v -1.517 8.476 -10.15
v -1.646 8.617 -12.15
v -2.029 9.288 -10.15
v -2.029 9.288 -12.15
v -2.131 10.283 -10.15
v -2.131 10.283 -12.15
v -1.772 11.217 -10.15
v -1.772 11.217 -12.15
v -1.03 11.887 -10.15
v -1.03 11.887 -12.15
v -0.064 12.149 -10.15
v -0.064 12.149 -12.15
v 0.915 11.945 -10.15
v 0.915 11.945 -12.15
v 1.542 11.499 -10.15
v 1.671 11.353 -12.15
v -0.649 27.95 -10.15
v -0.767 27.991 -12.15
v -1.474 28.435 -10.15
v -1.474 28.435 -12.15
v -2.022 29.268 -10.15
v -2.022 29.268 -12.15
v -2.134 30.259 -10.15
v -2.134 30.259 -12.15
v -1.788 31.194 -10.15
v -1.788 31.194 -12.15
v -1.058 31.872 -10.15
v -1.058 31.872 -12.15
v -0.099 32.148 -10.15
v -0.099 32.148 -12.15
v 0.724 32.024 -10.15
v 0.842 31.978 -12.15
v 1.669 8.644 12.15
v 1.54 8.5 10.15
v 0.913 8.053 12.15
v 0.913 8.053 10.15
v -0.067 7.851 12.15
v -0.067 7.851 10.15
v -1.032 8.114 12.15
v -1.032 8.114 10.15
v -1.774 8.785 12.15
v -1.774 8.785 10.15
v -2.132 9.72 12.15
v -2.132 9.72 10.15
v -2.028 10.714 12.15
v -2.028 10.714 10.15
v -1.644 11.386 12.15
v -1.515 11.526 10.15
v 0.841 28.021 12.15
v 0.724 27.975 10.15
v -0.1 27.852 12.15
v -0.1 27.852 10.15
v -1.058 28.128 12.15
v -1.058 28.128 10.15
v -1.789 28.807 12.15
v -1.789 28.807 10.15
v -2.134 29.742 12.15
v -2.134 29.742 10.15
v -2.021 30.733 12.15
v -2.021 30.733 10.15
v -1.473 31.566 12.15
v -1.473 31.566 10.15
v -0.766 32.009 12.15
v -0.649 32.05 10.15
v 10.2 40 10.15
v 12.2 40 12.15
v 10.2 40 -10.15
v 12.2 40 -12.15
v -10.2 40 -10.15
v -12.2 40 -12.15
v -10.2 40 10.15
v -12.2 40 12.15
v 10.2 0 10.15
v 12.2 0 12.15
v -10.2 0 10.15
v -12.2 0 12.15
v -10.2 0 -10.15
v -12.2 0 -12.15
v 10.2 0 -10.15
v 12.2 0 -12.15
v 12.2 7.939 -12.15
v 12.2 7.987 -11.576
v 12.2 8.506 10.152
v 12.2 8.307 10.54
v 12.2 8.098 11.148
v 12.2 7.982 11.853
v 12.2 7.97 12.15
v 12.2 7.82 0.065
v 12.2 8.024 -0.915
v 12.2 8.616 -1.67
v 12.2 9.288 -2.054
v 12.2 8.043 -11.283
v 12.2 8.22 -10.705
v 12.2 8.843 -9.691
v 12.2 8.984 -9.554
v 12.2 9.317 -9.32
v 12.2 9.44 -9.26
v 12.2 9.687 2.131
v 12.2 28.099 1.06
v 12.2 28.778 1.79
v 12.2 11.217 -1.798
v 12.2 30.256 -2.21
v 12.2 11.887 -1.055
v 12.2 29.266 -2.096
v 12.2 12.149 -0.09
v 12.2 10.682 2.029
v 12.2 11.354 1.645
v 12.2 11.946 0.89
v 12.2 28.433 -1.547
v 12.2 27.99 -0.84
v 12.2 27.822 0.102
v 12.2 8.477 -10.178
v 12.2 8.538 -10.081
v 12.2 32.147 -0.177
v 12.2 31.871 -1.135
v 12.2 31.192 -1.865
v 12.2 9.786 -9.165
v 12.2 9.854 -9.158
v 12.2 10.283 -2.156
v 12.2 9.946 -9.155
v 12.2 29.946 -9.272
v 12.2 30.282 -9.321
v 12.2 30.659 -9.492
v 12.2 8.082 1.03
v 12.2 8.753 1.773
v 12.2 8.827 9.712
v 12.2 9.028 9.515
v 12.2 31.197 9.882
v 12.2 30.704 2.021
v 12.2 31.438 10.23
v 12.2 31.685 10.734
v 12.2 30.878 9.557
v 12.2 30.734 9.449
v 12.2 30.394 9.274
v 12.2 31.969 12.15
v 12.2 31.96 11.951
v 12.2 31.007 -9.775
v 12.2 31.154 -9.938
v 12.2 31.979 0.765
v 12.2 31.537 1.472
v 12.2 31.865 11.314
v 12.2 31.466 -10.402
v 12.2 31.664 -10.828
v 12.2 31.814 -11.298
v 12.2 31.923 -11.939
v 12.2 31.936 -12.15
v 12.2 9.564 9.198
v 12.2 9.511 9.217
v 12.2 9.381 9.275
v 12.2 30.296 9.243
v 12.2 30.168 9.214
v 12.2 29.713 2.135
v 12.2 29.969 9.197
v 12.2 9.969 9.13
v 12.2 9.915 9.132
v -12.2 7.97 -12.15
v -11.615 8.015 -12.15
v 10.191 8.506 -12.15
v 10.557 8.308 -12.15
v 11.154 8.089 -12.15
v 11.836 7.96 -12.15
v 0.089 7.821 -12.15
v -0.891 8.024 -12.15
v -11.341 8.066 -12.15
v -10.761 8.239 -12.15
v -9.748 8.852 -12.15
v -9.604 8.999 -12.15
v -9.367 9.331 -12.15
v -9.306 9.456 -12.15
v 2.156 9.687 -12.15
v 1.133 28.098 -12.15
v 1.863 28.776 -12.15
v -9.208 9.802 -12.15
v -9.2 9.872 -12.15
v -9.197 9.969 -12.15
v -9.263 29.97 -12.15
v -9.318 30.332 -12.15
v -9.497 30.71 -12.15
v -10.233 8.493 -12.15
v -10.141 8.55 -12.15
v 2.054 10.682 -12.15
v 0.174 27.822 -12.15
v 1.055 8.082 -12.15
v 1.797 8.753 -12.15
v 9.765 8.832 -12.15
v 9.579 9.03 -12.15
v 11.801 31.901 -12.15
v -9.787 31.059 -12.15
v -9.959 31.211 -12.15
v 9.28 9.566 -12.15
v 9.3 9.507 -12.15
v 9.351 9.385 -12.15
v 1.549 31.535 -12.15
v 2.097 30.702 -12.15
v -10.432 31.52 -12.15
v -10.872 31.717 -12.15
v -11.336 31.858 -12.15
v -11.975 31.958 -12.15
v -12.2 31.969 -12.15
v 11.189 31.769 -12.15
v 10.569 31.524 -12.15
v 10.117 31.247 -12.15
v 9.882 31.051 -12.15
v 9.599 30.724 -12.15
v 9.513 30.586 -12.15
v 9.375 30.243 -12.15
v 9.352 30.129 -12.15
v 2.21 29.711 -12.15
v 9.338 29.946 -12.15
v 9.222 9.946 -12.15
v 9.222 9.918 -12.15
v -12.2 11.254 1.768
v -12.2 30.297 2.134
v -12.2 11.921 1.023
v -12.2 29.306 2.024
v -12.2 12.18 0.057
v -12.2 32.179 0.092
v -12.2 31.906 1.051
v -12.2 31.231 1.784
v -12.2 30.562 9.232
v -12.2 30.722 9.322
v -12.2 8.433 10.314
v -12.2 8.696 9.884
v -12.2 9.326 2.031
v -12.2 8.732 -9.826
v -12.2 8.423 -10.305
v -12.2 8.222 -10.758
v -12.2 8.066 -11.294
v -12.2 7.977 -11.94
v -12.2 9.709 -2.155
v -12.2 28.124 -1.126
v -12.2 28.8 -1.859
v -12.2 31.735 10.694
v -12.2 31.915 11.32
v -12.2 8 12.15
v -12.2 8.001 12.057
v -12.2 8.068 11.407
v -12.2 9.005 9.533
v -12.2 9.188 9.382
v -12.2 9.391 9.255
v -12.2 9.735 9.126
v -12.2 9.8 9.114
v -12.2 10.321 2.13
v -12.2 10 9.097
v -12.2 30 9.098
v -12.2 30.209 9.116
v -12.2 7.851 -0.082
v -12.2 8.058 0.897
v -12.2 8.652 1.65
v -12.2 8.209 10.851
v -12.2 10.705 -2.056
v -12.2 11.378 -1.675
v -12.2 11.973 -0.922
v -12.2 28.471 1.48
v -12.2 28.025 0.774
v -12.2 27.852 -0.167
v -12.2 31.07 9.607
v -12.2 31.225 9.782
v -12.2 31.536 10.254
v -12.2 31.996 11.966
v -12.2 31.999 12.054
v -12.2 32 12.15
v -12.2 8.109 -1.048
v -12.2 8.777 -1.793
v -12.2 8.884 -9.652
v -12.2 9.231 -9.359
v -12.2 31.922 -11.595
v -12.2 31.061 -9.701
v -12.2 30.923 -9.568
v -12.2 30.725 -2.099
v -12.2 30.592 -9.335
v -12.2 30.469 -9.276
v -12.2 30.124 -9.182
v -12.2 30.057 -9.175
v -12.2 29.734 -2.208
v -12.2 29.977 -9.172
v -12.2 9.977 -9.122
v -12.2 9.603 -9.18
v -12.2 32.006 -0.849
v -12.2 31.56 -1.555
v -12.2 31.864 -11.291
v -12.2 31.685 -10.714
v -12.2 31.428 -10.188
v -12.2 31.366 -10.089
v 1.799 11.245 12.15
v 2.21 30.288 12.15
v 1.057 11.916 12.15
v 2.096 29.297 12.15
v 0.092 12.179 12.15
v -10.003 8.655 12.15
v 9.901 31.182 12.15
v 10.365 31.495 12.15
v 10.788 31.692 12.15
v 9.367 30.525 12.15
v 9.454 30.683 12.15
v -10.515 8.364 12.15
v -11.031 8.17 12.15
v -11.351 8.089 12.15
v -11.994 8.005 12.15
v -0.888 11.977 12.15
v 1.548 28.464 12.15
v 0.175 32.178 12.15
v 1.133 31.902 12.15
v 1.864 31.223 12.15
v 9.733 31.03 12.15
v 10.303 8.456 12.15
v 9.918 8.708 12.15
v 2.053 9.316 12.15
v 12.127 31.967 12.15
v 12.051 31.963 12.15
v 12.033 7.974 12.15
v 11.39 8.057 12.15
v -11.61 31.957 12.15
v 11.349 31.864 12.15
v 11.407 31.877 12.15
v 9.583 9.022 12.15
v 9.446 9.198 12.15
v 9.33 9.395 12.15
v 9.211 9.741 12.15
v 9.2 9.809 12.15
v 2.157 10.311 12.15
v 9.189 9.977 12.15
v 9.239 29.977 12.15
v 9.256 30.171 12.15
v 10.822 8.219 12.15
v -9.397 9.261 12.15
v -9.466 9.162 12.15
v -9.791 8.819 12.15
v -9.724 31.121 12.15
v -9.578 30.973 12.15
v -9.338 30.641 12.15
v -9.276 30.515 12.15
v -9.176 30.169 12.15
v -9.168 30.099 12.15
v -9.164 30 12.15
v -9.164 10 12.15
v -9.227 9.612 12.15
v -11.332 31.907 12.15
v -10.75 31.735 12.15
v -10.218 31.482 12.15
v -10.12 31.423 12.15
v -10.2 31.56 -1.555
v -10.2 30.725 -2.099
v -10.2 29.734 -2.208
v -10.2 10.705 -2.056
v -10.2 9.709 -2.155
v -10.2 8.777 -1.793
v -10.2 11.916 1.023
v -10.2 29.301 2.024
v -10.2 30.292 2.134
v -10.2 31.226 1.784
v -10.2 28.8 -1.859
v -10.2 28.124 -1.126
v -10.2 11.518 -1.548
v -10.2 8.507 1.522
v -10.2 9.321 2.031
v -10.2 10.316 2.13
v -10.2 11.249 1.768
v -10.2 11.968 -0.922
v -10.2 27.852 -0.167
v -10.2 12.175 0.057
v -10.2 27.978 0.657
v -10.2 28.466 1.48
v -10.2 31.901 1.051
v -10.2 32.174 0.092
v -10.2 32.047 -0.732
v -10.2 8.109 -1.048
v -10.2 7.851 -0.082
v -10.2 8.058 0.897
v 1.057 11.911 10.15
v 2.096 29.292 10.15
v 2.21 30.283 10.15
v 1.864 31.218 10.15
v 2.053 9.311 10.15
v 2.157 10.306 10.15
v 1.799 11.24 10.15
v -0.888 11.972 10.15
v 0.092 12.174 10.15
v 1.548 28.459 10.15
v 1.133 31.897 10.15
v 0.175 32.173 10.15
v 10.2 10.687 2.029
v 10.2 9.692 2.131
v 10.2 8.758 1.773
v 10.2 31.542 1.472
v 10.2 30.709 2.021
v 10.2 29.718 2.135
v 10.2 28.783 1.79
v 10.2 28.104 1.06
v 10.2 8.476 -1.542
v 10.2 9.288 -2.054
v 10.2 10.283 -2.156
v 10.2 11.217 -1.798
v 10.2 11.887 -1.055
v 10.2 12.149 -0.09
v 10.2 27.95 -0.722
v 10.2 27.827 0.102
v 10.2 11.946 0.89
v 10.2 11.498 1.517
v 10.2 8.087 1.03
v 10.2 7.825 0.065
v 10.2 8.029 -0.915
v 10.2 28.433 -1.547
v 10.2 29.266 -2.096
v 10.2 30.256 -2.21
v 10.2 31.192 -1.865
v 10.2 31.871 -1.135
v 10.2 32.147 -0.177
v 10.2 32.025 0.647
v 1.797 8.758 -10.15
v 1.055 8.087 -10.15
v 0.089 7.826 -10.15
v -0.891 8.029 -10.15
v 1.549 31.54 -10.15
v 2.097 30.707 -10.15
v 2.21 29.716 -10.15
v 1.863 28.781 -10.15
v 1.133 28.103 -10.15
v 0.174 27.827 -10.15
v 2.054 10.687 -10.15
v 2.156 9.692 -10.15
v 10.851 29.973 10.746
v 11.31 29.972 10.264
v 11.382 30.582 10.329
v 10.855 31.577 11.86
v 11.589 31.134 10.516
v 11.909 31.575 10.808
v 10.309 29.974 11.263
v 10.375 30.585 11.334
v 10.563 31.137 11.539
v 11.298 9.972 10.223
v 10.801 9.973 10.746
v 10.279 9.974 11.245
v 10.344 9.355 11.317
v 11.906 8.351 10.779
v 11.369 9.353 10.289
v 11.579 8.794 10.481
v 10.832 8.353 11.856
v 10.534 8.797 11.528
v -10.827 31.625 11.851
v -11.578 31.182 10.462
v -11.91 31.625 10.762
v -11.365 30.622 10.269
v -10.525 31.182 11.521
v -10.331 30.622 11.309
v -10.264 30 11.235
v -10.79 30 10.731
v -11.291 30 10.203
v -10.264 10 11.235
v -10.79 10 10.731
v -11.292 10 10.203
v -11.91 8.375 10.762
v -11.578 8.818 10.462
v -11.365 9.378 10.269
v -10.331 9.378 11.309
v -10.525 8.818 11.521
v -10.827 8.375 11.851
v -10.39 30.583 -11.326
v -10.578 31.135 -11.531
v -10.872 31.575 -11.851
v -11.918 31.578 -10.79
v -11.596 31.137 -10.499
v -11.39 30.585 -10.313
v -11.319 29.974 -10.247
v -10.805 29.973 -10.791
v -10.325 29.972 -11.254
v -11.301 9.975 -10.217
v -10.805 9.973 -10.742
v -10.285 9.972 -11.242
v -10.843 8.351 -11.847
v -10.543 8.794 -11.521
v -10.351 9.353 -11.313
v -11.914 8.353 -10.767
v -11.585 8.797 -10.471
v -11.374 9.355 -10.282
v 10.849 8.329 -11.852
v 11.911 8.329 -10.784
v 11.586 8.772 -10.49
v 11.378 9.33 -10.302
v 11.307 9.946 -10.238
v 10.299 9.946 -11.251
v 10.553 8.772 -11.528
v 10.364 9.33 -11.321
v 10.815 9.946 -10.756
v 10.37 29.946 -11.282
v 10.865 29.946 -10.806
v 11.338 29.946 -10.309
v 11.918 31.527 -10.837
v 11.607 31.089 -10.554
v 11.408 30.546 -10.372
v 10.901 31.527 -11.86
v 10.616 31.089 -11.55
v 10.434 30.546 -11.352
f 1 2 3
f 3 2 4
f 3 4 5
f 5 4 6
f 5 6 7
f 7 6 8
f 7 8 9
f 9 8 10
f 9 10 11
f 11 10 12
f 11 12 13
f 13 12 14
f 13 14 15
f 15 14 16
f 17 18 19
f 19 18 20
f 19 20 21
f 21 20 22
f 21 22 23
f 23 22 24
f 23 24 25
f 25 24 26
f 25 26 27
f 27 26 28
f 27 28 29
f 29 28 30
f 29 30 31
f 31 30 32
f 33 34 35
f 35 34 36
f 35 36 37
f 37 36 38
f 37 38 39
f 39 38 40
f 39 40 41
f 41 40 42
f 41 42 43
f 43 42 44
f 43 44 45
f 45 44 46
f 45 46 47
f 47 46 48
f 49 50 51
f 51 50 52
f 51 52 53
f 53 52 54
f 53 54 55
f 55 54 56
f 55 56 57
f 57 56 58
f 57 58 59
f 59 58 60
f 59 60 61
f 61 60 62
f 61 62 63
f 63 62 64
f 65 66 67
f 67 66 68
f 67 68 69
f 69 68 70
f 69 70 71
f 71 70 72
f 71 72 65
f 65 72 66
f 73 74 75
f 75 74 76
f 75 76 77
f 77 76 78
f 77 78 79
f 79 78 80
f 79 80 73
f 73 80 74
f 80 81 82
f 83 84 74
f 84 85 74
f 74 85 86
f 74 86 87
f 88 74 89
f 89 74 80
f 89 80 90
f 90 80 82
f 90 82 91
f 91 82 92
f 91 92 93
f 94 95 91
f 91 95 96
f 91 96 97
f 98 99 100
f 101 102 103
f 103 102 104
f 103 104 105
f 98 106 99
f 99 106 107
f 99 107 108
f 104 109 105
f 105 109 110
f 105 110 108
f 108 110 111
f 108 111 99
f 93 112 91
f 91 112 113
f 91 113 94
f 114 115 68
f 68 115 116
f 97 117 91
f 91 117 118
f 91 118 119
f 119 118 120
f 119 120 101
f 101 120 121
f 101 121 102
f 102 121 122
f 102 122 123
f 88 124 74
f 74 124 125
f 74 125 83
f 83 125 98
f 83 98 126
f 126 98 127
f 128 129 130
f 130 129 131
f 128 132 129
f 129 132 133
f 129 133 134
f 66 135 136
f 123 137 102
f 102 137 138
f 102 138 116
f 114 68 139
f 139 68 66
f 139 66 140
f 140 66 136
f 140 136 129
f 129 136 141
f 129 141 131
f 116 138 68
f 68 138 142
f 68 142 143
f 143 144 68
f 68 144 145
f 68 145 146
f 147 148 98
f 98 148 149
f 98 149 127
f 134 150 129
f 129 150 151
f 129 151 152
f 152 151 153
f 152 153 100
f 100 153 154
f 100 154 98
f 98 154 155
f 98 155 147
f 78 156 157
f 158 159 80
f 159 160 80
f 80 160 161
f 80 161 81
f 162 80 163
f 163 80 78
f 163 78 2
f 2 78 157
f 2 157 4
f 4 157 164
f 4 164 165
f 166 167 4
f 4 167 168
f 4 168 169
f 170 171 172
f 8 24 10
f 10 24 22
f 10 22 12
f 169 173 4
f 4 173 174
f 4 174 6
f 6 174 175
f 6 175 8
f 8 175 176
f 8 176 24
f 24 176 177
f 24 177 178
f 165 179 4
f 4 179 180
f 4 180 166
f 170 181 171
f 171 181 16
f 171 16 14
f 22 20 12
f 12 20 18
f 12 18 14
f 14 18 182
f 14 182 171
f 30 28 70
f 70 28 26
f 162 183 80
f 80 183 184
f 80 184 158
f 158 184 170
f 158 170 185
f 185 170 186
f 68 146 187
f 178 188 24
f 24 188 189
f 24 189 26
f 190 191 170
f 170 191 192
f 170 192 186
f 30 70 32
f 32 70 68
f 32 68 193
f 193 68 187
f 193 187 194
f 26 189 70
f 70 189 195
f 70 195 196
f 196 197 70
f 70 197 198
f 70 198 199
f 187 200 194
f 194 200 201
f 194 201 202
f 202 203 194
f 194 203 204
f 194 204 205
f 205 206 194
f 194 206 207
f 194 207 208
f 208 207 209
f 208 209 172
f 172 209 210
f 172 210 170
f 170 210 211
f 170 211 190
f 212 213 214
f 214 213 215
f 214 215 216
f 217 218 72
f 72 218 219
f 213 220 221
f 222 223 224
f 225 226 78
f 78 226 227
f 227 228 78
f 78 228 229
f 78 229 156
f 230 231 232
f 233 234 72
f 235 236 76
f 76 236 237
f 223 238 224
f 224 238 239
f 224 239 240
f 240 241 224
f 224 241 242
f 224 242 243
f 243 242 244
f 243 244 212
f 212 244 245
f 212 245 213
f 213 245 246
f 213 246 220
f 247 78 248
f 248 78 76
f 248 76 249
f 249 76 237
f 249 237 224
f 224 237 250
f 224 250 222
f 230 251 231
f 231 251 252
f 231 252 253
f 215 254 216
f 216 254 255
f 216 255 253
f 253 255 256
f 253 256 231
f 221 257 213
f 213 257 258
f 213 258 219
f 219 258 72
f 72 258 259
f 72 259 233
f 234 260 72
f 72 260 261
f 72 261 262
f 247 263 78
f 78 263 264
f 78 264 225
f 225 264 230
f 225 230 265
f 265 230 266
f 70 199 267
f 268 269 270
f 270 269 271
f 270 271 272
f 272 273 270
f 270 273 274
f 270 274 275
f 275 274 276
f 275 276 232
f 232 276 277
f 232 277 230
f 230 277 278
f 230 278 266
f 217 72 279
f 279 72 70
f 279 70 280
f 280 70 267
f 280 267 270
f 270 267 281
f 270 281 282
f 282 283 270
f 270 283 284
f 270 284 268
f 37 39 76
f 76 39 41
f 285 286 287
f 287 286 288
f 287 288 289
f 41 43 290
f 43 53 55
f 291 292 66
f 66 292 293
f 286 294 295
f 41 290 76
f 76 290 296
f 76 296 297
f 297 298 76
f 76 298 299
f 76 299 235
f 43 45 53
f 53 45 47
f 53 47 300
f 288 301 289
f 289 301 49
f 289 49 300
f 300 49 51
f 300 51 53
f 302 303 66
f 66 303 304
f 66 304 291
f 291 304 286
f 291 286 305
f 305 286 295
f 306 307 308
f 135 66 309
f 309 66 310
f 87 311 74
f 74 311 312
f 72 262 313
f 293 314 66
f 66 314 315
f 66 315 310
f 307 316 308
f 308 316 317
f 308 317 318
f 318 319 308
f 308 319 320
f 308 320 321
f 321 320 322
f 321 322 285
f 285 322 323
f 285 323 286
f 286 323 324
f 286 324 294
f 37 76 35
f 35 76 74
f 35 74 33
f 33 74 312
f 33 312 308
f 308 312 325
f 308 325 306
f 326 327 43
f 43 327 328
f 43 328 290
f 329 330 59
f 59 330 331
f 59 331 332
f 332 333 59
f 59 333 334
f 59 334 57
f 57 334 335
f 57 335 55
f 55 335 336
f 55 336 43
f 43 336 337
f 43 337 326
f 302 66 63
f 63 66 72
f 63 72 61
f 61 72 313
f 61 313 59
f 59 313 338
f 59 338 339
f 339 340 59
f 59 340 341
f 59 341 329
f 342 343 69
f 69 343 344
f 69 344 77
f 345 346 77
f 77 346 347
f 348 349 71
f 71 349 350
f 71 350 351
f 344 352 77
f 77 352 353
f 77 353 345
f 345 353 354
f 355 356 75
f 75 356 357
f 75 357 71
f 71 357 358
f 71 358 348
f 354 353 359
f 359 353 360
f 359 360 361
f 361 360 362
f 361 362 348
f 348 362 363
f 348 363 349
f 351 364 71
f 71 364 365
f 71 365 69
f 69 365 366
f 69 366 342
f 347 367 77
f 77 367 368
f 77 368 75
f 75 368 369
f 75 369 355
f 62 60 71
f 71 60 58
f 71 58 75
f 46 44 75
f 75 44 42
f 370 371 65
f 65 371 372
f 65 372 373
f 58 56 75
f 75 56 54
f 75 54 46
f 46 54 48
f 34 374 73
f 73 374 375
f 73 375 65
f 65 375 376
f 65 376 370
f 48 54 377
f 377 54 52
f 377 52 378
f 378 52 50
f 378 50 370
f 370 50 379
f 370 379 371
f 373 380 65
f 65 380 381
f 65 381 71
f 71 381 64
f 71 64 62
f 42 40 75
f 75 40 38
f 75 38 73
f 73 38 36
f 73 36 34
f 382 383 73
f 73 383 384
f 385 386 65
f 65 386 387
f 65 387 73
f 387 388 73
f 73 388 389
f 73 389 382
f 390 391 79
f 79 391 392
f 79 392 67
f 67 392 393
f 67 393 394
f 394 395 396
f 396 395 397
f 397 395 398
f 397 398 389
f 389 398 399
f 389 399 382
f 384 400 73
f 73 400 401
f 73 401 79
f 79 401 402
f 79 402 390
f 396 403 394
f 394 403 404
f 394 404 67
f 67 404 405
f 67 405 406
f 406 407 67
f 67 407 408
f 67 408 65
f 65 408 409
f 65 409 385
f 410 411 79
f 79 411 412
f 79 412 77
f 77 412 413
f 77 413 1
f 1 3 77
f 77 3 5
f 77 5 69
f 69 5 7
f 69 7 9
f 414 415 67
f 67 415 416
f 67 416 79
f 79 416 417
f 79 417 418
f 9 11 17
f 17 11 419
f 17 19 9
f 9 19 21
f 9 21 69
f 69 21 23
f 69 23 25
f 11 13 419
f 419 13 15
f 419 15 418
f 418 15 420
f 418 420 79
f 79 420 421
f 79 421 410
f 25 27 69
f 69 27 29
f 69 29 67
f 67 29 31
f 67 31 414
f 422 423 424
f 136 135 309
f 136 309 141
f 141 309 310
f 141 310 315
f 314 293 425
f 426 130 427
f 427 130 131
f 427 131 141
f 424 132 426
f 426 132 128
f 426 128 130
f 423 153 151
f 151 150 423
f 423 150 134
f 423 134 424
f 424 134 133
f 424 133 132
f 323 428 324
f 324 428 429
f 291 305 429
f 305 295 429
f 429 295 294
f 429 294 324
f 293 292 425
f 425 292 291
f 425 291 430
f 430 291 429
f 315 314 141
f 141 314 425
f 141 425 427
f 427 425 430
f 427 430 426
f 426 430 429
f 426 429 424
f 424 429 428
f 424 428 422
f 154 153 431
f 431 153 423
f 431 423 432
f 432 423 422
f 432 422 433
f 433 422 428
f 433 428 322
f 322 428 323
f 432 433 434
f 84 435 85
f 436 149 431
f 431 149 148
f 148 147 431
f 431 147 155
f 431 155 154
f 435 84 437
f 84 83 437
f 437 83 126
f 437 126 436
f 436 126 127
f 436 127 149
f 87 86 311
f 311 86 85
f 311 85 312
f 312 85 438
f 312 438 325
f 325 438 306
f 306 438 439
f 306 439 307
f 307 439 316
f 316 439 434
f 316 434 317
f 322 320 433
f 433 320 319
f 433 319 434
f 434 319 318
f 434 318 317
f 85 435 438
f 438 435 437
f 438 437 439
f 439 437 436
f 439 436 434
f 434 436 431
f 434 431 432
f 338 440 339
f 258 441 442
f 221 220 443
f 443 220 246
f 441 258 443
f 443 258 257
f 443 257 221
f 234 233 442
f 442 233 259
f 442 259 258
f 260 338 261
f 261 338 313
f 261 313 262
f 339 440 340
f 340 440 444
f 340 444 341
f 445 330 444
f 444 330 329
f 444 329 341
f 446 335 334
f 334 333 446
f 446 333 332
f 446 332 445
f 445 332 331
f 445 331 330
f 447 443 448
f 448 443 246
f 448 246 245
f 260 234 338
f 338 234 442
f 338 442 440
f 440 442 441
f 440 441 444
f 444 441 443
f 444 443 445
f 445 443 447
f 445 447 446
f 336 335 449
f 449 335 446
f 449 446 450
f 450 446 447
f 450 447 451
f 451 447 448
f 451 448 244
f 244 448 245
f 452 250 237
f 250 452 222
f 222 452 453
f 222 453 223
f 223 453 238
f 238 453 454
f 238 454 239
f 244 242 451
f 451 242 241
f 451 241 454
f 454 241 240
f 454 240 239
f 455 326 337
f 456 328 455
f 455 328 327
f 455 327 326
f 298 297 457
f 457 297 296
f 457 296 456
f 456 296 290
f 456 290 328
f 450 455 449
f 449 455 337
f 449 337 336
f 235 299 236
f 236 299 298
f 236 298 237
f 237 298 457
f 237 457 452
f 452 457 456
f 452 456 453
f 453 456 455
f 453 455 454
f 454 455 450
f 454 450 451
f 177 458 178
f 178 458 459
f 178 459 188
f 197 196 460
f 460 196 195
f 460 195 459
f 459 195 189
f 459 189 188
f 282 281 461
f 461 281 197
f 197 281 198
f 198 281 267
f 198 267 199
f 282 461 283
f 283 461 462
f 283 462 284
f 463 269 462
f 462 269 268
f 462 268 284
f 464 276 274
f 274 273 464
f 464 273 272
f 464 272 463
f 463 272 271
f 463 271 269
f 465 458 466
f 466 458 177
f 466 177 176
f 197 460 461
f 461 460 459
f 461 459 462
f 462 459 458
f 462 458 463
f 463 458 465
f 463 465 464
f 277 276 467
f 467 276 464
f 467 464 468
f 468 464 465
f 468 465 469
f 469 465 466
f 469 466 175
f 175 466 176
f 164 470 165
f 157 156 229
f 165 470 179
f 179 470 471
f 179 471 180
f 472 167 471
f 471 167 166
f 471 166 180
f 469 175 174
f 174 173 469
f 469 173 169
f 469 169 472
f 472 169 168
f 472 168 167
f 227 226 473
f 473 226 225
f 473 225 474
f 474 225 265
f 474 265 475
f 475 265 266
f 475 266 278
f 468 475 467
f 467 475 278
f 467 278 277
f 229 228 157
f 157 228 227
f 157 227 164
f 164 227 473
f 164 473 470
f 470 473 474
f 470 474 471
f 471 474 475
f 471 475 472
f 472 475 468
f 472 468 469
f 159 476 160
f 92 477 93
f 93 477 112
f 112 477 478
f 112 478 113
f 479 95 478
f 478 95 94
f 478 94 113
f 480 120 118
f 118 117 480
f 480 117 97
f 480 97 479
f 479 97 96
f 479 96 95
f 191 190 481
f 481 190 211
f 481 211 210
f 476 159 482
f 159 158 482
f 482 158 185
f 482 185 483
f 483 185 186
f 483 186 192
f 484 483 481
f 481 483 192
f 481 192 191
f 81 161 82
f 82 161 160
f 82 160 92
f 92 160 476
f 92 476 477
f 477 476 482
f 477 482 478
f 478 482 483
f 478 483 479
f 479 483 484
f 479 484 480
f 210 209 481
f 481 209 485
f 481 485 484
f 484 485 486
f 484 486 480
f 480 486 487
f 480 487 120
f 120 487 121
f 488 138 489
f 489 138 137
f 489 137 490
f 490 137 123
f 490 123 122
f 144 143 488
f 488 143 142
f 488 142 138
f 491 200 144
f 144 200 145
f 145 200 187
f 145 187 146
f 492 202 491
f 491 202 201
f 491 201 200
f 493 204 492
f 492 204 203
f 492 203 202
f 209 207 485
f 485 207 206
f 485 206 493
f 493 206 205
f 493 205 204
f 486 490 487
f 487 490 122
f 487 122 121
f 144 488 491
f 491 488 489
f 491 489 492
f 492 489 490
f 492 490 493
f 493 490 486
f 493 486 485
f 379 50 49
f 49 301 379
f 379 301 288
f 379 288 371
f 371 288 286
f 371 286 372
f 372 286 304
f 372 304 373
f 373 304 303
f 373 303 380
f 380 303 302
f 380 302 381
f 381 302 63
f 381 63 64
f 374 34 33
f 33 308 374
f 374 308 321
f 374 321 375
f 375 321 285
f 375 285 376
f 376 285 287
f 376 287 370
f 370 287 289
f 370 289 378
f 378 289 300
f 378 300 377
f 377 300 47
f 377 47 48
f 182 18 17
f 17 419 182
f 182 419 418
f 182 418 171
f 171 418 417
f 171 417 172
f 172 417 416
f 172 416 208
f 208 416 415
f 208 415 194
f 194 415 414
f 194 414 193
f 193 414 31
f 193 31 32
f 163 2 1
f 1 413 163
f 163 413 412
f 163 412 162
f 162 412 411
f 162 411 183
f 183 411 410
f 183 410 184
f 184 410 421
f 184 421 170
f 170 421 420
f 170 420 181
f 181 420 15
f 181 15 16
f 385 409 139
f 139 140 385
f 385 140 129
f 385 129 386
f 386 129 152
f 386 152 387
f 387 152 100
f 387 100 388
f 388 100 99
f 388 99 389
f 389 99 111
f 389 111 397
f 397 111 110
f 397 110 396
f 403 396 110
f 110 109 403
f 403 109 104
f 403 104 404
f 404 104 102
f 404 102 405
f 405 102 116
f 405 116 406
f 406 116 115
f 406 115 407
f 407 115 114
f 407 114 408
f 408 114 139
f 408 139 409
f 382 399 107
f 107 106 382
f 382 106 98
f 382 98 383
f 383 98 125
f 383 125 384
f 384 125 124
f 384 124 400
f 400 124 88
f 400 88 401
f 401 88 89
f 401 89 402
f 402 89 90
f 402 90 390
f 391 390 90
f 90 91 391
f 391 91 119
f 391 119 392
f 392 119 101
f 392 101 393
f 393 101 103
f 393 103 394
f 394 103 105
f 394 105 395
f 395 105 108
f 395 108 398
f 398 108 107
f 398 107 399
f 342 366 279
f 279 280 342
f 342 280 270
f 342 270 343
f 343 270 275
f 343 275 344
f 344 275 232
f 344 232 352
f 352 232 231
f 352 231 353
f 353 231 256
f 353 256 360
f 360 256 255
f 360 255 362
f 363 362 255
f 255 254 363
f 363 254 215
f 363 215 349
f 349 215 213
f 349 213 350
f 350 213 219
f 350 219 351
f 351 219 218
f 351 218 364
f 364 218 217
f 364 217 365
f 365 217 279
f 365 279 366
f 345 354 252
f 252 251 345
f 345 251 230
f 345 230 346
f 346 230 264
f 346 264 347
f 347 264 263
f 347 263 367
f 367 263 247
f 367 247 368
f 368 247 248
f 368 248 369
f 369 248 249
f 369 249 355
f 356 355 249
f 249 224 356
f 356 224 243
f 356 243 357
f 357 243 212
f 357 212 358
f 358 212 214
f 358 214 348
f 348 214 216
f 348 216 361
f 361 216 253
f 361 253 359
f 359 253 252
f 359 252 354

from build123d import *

# Parameters (mm, degrees)
SKETCH1_W           = 24.4
SKETCH1_H           = 24.3
SKETCH1_W_2         = 20.4
SKETCH1_H_2         = 20.3
BOSS_EXTRUDE1_DEPTH = 40
SKETCH3_R           = 2.15
CUT_EXTRUDE1_DEPTH  = 40
CIRPATTERN1_COUNT   = 4


with BuildPart() as part:
    # Sketch1 → Boss-Extrude1 (new body)
    with BuildSketch(Plane(origin=(0, 0, 0), x_dir=(1, 0, 0), z_dir=(0, 1, 0))):
        Rectangle(SKETCH1_W, SKETCH1_H)
        Rectangle(SKETCH1_W_2, SKETCH1_H_2, mode=Mode.SUBTRACT)
    extrude(amount=BOSS_EXTRUDE1_DEPTH)

    # Sketch2 → Cut-Revolve1 (revolve, cut)
    with BuildSketch(Plane(origin=(0, 0, 0), x_dir=(0.7085572520498782, 0, -0.7056533288857395), z_dir=(0.7056533288857395, 0, 0.7085572520498782))):
        with BuildLine():
            Line((-19.218086421, 10), (-19.218086421, 30))
            ThreePointArc((-19.218086421, 30), (-17.218086421, 32), (-15.218086421, 30))
            Line((-15.218086421, 30), (-15.218086421, 10))
            ThreePointArc((-15.218086421, 10), (-17.218086421, 8), (-19.218086421, 10))
        make_face()
    revolve(axis=Axis((0.050102458, 40, -0.04989712), (-0.0012525594966950285, -0.9999984375102502, 0.0012474260561348032)), mode=Mode.SUBTRACT)

    # Sketch3 → Cut-Extrude1 (cut, symmetric)
    with BuildSketch(Plane.XY.offset(-10.15)):
        with Locations((0, 30)):
            Circle(SKETCH3_R)
        with Locations((0, 10)):
            Circle(SKETCH3_R)
    cut_extrude1 = extrude(amount=CUT_EXTRUDE1_DEPTH, both=True, mode=Mode.SUBTRACT)

    # CirPattern1: Cut-Extrude1 ×4 about axis
    cirpattern1_axis = Axis((0.050102458, 40, -0.04989712), (-0.0012525594966950285, -0.9999984375102502, 0.0012474260561348032))
    for i in range(1, CIRPATTERN1_COUNT):
        add(cut_extrude1.rotate(cirpattern1_axis, i * 360 / CIRPATTERN1_COUNT), mode=Mode.SUBTRACT)


solid = part.part
